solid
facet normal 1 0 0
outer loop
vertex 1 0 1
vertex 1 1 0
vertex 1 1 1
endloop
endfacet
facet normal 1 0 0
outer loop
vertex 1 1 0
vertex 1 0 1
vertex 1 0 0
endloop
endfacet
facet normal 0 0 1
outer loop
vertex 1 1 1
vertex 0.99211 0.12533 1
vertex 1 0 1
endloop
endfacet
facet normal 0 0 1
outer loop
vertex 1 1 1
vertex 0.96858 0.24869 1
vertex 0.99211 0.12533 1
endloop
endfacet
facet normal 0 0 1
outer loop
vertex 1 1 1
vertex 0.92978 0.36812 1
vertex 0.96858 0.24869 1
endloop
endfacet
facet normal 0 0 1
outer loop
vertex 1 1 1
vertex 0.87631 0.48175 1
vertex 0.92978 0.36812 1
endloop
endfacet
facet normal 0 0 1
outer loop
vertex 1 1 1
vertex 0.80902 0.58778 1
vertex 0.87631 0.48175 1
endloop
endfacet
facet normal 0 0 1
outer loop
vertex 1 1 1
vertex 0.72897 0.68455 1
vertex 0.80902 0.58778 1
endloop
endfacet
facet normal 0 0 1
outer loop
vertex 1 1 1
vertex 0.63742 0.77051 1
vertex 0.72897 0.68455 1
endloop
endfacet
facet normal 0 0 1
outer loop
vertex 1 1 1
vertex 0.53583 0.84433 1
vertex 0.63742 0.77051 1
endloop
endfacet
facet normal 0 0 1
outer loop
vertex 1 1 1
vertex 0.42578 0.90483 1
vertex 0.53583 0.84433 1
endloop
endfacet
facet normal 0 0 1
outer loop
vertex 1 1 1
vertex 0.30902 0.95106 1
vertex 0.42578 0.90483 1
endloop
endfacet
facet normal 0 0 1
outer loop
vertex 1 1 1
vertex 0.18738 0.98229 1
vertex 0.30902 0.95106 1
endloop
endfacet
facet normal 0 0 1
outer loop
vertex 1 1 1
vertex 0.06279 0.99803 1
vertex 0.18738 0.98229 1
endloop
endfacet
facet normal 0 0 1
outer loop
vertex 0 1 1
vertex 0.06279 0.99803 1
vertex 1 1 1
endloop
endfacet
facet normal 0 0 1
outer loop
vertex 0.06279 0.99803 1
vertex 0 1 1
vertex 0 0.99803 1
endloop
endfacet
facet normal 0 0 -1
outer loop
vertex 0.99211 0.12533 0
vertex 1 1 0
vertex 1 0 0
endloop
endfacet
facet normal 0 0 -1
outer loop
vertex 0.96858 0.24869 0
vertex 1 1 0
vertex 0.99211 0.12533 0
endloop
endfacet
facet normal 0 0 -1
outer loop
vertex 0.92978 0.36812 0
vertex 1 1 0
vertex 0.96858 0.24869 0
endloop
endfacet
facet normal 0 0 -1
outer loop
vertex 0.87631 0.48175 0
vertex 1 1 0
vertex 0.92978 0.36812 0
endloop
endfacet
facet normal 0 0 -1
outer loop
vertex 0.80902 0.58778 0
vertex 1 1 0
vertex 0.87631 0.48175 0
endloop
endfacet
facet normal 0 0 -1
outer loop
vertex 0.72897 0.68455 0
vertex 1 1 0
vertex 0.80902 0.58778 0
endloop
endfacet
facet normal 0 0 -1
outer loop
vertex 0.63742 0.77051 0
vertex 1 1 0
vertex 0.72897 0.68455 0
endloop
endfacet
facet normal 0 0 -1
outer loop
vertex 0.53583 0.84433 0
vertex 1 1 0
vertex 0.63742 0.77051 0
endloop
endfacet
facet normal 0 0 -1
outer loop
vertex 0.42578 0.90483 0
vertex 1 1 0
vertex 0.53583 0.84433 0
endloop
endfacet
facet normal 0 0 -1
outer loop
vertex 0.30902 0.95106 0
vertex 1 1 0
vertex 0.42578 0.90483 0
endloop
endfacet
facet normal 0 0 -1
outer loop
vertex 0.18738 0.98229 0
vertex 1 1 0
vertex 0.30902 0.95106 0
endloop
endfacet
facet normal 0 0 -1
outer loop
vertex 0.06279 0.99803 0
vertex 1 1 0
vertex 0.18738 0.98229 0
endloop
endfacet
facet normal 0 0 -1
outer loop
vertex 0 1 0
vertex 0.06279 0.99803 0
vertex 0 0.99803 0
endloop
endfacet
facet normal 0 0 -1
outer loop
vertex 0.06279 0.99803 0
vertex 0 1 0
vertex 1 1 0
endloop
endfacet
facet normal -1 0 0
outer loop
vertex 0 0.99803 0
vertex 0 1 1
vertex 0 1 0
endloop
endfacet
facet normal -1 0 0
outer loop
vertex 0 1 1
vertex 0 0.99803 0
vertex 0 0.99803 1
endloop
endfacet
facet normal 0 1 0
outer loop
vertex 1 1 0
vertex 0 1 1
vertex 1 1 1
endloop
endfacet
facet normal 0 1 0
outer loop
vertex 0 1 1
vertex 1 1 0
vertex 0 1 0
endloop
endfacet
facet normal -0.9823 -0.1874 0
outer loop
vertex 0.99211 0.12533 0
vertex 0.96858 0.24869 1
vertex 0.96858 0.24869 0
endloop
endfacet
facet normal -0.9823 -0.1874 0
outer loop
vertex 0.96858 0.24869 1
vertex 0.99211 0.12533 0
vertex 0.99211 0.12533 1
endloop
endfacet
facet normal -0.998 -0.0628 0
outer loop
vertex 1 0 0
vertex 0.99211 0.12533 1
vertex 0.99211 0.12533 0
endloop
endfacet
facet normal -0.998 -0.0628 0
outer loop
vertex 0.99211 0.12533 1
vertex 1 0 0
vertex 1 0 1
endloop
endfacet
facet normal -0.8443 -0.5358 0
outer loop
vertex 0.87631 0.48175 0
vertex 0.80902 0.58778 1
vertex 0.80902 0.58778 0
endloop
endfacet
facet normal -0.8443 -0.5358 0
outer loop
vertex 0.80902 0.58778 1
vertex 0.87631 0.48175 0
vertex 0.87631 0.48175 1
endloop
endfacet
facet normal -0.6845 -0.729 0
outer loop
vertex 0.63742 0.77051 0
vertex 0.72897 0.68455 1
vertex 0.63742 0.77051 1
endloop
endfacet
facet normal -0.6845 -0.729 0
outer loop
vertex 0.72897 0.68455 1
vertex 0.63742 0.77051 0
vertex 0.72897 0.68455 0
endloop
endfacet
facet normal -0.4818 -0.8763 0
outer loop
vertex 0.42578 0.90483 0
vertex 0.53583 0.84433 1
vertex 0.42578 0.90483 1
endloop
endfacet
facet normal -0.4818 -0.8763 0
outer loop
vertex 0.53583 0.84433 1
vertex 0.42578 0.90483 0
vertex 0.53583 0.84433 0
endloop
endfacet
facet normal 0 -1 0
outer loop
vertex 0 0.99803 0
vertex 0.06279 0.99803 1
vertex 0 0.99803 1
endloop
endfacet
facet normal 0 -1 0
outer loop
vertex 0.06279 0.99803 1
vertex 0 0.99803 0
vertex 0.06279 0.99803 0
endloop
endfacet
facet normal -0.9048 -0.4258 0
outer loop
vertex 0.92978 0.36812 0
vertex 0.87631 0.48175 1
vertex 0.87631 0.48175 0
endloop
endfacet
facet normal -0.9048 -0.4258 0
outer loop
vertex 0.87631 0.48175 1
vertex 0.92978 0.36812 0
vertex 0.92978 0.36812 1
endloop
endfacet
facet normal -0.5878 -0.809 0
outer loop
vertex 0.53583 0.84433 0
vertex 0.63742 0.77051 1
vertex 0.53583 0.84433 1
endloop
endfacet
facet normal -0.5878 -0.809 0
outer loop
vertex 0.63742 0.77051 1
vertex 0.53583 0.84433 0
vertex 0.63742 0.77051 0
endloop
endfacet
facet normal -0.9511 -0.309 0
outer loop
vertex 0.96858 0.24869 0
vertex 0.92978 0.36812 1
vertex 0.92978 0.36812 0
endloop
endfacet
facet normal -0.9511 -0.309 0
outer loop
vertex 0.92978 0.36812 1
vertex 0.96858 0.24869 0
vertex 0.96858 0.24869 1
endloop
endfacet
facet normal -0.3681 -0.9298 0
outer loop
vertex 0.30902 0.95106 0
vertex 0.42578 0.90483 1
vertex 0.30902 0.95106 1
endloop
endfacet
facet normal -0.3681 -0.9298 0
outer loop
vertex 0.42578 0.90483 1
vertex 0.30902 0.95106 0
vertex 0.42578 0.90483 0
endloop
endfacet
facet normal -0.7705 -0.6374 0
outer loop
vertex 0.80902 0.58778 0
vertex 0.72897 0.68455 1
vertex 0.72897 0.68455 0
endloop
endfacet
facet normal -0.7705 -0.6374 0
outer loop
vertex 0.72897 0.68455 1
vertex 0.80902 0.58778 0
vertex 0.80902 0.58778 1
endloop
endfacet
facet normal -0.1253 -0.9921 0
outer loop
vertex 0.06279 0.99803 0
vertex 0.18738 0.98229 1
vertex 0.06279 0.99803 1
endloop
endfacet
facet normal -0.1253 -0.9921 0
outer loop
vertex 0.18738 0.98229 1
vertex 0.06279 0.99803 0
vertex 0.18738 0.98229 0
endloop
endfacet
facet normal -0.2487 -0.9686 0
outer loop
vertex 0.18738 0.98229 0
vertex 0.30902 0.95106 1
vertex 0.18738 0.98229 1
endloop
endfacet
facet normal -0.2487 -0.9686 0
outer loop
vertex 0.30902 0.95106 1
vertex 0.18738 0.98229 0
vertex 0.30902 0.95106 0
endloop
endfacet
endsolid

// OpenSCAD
module rounded_cube(size, radius) {
  difference() {
    cube([size, size, size]);
    translate([radius, radius, radius])
      cylinder(h = size, r = radius, $fn = 50);
    translate([size - radius, radius, radius])
      cylinder(h = size, r = radius, $fn = 50);
    translate([radius, size - radius, radius])
      cylinder(h = size, r = radius, $fn = 50);
    translate([size - radius, size - radius, radius])
      cylinder(h = size, r = radius, $fn = 50);
  }
}

rounded_cube([10, 10, 10]);
